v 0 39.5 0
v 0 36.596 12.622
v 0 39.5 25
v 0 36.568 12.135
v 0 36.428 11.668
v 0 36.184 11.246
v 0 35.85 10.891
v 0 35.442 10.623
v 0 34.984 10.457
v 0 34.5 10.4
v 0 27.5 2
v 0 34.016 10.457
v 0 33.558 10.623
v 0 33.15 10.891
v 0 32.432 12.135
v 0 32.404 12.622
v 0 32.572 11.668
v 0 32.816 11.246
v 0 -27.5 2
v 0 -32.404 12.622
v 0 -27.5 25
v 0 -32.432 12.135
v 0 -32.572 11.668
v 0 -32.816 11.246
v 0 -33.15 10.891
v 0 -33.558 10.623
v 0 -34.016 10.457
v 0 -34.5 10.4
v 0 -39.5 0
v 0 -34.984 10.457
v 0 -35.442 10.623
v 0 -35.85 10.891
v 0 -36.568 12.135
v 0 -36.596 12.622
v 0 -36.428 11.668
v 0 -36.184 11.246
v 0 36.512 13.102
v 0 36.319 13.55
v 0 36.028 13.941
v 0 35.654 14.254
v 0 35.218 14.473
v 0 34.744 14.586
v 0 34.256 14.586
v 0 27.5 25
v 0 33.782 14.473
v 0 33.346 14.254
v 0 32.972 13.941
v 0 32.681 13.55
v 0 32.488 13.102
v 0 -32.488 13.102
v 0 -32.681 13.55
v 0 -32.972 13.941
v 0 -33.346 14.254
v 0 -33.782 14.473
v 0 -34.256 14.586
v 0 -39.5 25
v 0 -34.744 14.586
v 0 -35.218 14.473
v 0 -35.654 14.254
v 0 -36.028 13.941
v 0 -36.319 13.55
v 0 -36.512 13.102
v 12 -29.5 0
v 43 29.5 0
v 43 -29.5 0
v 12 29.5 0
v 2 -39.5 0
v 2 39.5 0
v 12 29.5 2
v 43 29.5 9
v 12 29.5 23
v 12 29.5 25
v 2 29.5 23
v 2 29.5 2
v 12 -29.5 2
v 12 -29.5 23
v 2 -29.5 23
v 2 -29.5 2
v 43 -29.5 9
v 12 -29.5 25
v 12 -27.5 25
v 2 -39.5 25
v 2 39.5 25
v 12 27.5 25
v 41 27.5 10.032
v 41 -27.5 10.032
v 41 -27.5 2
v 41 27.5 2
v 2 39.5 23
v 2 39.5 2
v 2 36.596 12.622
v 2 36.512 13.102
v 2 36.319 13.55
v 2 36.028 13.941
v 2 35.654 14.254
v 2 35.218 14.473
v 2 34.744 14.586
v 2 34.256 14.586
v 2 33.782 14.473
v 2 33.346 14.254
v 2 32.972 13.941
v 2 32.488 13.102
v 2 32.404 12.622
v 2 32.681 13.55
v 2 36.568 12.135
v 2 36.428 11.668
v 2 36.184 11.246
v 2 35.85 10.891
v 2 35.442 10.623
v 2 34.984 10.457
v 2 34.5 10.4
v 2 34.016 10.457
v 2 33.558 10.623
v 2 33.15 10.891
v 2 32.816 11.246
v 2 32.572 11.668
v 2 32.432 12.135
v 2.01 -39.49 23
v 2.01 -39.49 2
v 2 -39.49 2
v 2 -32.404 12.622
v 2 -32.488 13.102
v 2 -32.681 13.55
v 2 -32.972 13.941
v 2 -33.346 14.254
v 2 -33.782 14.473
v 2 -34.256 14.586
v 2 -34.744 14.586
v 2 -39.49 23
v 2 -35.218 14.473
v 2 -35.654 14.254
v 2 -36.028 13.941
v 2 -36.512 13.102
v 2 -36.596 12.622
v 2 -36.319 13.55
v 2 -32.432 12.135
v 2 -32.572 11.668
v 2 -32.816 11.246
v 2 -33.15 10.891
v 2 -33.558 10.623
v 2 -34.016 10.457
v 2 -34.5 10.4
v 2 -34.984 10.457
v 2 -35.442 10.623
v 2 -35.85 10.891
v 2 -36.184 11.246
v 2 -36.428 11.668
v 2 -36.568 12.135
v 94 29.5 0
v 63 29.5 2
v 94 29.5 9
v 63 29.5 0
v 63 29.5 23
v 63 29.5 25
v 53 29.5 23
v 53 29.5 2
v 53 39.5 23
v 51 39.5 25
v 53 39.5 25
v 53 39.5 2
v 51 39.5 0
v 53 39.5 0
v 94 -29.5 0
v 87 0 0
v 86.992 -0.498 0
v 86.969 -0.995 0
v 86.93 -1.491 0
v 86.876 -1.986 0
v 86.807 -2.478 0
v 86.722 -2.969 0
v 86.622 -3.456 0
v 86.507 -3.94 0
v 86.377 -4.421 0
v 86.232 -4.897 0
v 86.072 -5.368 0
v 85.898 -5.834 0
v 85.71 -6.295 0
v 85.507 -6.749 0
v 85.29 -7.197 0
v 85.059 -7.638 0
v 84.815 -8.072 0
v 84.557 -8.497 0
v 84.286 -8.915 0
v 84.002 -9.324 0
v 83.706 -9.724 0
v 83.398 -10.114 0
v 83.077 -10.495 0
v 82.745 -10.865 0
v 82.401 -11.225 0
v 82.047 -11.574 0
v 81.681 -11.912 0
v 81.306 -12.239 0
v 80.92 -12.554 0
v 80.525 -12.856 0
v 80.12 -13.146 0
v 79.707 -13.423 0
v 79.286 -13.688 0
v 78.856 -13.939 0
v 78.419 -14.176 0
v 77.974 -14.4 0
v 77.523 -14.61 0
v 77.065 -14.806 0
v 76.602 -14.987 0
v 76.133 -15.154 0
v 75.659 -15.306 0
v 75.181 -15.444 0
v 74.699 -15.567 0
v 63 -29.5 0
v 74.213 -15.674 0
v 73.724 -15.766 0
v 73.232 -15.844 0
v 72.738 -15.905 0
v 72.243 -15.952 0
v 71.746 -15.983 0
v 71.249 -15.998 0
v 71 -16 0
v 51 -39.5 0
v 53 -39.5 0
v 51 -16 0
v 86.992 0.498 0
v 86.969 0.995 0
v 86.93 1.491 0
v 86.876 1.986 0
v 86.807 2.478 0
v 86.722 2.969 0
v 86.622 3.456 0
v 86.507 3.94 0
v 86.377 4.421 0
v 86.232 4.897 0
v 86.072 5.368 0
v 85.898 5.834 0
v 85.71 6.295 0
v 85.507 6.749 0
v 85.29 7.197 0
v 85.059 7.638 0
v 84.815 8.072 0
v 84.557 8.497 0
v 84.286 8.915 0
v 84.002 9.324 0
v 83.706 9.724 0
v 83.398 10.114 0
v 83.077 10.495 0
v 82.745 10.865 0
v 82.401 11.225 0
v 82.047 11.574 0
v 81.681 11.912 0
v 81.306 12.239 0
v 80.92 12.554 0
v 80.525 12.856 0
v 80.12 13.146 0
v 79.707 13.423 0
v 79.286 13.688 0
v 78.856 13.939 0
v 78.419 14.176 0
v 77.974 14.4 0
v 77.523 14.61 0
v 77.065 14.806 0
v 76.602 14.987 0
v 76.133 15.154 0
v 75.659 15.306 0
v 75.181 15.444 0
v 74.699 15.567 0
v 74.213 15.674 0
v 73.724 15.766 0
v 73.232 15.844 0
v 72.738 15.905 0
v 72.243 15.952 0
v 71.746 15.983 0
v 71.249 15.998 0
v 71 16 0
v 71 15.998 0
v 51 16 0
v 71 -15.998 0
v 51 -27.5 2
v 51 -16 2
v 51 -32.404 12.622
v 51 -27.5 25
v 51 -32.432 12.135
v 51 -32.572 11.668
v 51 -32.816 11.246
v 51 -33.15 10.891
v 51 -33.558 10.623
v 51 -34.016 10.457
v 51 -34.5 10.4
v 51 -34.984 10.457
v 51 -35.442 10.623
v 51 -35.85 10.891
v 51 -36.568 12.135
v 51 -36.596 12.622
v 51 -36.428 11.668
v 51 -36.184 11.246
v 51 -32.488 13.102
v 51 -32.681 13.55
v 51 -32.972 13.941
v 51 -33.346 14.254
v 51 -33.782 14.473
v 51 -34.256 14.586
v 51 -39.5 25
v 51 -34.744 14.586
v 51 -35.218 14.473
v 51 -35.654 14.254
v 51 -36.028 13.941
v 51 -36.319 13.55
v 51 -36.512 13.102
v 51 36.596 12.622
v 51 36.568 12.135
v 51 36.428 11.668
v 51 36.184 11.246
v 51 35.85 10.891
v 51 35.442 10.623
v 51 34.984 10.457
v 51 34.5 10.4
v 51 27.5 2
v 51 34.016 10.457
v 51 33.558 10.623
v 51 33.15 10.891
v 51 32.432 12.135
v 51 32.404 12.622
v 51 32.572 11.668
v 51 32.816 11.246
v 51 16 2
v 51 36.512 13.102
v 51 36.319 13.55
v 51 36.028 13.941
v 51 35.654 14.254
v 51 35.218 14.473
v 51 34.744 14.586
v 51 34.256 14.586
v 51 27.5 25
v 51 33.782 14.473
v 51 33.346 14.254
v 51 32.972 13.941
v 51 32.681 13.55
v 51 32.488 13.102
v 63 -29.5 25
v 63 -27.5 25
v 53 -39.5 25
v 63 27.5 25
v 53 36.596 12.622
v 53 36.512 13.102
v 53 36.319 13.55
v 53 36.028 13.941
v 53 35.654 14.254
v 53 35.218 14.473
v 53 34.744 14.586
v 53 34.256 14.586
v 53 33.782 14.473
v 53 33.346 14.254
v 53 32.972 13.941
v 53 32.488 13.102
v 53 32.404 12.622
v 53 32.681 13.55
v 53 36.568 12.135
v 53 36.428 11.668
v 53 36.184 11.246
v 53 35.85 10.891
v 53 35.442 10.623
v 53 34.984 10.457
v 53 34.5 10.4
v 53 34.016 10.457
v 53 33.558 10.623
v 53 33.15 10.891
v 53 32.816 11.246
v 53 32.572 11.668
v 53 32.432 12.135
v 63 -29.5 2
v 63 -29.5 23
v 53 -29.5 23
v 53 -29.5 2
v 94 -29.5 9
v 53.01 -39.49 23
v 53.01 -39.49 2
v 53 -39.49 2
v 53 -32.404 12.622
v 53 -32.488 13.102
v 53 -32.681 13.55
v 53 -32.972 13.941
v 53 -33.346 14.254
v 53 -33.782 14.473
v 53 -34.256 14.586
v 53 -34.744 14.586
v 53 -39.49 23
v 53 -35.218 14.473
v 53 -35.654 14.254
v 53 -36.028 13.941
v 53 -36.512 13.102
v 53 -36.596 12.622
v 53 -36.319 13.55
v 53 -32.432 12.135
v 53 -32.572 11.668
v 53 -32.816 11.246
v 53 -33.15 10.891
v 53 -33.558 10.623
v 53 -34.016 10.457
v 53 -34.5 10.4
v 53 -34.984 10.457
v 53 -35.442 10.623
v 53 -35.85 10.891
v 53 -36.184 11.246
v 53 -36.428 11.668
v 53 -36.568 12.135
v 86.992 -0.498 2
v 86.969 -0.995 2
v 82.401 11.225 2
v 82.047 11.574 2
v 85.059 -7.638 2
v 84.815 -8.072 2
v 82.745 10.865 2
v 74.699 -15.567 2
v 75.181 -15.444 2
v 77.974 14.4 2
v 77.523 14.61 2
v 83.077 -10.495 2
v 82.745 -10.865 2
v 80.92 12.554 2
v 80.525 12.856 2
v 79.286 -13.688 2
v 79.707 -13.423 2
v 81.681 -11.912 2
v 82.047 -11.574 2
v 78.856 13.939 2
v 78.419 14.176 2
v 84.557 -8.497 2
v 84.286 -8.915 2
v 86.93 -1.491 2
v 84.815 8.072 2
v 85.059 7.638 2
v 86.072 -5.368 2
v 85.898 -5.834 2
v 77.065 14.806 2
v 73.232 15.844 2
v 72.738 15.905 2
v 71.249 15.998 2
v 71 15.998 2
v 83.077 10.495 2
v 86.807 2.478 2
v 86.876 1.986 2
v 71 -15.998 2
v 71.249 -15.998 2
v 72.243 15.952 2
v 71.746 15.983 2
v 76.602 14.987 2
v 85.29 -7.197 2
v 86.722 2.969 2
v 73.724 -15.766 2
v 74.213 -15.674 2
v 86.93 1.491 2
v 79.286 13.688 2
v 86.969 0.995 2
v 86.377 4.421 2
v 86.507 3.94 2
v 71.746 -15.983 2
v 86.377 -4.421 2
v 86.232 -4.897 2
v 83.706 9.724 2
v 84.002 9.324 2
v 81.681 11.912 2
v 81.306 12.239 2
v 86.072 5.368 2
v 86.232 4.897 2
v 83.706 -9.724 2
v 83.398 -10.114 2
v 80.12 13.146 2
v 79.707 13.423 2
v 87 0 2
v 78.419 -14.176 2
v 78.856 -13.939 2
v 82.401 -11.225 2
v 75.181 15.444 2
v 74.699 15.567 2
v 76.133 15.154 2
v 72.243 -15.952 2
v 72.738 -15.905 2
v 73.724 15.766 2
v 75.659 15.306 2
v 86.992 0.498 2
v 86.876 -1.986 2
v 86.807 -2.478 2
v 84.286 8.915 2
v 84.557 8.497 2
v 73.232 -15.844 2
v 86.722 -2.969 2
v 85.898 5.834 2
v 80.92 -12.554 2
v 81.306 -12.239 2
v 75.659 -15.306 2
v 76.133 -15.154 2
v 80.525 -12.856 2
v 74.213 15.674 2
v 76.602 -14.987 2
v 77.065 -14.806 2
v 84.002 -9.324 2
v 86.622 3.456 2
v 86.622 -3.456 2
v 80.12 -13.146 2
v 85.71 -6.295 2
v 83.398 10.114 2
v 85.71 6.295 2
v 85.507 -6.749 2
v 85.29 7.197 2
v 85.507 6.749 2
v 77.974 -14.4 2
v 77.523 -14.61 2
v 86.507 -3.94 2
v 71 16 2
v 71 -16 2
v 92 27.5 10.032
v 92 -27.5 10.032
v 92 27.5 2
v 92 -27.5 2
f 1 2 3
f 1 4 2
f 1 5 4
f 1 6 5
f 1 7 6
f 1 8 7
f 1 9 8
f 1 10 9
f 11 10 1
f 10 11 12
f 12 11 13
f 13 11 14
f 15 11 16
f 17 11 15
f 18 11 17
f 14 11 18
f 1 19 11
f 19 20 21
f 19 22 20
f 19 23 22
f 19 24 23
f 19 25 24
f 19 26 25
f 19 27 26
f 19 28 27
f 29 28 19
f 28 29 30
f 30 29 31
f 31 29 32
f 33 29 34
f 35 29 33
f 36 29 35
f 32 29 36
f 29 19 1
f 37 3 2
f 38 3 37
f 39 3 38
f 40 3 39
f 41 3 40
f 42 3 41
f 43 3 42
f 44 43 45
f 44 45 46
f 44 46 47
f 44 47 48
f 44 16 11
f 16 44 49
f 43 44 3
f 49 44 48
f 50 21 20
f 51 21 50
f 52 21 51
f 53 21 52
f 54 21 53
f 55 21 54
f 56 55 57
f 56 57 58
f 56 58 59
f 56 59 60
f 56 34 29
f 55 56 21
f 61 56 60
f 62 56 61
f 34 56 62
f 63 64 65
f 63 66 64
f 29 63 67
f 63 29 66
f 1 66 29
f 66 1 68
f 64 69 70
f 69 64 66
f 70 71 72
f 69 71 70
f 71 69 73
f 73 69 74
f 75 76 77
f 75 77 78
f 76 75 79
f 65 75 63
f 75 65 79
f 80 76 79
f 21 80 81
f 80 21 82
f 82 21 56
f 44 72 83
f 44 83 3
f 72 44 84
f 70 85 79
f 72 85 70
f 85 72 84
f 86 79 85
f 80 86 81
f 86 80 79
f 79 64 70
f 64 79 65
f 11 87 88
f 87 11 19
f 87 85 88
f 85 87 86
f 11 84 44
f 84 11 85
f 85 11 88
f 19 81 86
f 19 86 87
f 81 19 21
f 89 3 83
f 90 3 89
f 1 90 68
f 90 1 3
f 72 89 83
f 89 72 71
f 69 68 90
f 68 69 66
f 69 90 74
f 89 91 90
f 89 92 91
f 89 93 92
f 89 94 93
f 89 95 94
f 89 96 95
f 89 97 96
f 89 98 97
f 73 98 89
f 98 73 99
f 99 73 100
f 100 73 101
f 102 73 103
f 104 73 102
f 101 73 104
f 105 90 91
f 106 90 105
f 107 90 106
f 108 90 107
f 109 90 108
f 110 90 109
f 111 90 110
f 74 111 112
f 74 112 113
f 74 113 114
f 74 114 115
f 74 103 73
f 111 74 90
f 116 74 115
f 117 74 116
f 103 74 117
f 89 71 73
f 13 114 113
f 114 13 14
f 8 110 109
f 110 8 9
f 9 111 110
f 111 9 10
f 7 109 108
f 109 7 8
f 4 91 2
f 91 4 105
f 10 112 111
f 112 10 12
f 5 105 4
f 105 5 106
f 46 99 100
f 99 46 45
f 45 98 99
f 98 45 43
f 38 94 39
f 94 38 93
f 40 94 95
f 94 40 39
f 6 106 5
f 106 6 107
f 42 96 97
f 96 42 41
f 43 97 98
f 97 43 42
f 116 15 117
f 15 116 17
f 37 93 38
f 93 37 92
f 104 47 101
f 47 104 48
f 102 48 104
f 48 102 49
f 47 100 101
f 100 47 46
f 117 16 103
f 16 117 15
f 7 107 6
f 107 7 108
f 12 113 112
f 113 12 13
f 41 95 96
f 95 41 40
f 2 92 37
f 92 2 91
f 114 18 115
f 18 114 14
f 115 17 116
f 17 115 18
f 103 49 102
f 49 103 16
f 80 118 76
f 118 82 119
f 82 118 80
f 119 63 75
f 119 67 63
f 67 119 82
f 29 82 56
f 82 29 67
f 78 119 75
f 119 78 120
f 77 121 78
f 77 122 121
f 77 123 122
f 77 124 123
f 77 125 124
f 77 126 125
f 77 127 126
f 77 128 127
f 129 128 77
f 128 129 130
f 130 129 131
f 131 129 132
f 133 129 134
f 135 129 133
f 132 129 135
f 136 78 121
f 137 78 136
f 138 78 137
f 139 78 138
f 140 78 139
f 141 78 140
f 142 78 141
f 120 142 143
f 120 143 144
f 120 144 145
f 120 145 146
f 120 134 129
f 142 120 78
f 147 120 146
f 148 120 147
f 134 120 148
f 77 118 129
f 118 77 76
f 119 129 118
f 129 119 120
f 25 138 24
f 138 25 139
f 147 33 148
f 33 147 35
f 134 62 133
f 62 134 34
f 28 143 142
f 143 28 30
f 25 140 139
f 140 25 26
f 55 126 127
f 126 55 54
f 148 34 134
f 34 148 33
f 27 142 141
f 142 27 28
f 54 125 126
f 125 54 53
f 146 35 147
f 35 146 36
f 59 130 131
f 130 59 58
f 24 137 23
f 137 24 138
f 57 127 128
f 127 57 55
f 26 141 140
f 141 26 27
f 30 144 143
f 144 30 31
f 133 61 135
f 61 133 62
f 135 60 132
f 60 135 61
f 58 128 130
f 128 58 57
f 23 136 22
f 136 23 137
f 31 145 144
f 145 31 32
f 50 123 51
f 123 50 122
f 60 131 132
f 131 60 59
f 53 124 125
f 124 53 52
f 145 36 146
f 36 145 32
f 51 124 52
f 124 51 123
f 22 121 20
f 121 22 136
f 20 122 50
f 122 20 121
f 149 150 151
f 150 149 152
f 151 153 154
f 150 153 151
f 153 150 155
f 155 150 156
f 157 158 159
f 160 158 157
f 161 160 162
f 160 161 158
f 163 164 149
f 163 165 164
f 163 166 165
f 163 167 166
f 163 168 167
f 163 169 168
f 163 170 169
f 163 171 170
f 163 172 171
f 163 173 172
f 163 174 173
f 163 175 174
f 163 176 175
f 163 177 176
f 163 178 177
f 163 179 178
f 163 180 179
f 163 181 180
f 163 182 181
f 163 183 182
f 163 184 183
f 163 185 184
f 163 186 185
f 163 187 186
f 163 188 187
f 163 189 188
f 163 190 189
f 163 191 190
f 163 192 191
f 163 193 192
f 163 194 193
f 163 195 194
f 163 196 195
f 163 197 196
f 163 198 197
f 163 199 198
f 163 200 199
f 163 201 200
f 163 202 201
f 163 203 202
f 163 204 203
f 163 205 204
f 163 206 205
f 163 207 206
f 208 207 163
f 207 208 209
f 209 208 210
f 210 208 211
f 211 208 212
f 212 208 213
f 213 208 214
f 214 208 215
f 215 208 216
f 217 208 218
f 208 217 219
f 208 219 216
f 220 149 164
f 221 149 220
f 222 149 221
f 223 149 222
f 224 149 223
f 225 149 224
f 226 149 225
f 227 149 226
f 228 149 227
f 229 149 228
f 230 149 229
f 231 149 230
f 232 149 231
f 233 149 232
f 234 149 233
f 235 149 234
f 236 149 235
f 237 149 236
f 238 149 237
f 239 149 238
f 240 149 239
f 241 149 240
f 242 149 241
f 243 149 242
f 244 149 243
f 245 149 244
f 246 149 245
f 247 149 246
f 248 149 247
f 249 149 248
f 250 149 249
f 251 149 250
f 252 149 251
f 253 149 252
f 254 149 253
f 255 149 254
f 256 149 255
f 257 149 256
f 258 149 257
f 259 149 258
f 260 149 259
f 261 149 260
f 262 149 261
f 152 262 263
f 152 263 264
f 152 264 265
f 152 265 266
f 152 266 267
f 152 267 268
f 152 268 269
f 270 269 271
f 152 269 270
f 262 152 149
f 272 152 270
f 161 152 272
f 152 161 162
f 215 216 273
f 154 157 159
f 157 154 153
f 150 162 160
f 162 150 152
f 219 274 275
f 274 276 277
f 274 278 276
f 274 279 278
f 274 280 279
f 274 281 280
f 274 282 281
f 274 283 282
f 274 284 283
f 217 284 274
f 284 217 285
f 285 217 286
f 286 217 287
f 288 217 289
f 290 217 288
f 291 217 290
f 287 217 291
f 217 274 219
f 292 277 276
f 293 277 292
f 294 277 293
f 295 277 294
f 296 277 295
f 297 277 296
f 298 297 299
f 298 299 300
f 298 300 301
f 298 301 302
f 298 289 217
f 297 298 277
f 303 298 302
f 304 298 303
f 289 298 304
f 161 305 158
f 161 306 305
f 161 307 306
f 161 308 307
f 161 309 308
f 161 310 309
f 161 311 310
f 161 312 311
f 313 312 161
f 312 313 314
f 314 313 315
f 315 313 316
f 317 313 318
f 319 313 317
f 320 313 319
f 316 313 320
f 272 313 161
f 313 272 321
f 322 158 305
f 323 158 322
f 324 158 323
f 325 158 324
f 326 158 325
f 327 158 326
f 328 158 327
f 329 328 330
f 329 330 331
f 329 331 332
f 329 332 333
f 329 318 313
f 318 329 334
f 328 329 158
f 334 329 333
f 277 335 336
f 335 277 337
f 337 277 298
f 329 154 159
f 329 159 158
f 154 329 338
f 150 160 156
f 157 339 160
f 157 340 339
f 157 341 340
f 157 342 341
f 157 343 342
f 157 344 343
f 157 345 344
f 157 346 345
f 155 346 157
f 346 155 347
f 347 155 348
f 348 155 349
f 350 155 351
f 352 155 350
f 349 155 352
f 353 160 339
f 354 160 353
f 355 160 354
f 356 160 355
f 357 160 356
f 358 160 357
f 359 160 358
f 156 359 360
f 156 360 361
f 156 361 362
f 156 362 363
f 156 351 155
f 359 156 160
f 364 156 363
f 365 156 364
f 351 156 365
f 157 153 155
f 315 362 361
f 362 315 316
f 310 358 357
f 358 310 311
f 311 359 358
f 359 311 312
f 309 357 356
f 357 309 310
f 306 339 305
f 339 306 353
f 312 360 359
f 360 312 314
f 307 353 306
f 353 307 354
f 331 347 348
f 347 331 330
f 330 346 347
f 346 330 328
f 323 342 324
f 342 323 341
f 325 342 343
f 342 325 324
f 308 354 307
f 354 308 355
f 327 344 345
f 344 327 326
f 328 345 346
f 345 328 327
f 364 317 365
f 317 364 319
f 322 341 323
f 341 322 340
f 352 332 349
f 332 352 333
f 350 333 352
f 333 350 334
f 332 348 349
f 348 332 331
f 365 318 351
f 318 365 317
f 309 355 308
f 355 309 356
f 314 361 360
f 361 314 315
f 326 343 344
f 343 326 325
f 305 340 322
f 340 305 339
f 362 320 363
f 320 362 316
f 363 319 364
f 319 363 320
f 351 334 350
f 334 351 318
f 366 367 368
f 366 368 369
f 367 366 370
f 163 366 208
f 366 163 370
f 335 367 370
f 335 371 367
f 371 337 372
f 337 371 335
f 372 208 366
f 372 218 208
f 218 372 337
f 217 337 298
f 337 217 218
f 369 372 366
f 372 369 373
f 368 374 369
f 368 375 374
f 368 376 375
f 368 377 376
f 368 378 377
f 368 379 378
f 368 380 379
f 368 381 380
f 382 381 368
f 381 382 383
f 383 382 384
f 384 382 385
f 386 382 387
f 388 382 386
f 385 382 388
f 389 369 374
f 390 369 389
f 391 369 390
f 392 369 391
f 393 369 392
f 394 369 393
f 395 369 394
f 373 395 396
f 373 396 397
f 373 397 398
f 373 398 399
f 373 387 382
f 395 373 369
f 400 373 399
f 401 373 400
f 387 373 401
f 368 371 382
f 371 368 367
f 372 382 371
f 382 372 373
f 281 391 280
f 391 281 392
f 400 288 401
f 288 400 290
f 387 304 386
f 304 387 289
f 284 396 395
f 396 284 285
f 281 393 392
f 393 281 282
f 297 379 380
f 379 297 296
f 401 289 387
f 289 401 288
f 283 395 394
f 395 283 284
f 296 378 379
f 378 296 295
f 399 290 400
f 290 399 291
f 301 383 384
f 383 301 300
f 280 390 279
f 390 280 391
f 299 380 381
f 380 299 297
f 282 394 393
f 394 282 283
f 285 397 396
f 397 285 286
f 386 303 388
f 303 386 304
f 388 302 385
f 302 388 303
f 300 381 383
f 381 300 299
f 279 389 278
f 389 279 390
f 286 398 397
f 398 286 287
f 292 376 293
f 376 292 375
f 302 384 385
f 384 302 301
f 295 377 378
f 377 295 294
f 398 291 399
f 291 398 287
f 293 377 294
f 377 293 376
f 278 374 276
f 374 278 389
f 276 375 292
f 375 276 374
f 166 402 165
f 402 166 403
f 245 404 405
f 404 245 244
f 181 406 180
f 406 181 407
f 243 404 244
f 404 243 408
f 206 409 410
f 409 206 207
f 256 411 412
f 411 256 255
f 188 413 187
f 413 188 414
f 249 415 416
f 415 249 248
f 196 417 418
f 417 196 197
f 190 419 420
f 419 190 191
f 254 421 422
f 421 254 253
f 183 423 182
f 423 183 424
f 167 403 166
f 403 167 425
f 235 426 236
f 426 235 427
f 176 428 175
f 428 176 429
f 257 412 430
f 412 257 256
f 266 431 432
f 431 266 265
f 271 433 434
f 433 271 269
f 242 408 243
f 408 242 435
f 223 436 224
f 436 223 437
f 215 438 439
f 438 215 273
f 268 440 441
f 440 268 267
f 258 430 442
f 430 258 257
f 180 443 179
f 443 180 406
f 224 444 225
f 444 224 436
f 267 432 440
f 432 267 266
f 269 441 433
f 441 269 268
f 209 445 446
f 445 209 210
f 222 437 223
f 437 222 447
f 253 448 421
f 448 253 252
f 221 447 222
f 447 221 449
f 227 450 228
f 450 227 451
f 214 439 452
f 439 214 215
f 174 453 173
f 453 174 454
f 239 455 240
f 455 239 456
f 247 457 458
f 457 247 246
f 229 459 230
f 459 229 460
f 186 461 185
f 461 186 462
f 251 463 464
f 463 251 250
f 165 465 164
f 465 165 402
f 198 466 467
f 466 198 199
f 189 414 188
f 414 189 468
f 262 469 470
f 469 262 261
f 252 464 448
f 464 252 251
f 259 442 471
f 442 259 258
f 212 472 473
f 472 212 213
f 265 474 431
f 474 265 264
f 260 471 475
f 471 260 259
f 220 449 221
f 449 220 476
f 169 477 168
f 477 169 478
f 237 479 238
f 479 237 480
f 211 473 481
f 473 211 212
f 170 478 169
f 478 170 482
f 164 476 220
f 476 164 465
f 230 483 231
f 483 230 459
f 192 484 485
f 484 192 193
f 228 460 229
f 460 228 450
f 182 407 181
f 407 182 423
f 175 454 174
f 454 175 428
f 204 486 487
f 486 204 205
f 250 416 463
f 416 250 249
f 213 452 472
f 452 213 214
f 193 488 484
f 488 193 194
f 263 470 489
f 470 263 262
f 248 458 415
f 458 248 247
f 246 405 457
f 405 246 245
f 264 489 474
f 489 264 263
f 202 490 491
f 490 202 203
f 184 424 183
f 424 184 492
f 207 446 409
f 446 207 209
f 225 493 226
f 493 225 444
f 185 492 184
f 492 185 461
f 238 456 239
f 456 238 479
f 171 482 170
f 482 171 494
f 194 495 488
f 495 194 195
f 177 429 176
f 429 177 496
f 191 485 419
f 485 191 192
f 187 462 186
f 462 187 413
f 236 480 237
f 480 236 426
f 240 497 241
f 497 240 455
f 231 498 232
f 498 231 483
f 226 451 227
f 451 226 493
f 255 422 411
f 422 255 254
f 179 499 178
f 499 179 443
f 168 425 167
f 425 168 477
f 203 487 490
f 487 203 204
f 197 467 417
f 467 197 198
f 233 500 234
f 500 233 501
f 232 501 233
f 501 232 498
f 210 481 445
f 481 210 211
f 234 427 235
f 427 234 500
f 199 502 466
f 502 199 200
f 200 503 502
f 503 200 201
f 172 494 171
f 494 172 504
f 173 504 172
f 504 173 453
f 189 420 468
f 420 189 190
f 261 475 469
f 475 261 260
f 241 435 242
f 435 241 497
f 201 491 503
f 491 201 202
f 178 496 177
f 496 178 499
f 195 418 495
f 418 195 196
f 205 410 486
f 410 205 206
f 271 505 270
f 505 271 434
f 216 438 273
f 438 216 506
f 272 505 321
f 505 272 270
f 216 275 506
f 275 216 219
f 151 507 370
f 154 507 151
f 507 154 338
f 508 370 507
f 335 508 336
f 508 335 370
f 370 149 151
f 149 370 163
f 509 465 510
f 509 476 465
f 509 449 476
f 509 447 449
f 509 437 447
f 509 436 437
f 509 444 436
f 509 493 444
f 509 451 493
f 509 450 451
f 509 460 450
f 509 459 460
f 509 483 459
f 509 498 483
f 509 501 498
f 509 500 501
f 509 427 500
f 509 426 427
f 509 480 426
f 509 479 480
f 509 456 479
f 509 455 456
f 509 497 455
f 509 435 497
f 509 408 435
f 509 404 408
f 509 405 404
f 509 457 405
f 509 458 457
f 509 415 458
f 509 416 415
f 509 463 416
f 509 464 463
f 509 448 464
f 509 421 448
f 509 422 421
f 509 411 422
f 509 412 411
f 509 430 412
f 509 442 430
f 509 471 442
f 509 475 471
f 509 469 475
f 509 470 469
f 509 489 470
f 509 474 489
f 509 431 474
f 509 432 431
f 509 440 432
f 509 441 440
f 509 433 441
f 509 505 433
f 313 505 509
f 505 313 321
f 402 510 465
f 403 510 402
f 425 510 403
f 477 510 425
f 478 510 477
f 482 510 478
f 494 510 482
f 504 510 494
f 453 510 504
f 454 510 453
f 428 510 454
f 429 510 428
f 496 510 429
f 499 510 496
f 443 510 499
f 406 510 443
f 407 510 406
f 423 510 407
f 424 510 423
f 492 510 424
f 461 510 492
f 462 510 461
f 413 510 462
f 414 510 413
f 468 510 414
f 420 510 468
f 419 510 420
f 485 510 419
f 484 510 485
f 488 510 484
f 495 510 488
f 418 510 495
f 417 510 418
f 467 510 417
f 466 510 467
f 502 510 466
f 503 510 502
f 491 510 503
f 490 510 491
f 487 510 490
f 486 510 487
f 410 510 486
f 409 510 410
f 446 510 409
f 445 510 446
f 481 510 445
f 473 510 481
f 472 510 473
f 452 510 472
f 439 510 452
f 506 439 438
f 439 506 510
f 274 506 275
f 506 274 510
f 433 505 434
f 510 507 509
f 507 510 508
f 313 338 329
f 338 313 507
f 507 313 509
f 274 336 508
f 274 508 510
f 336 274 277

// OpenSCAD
// This work is licensed under the Creative Commons 
// Attribution-ShareAlike 4.0 International License. 
// To view a copy of this license, visit
// http://creativecommons.org/licenses/by-sa/4.0/.

//
// HOW TO RENDER THE EXAMPLE
//
// If you set the part variable below to 'example' and have the 
// relevant libraries installed, an example power strip with 
// holders and dimension lines is rendered.
// This is not supported on the Thingiverse customizer.
//

//
// Thingiverse customizer variables:
//
// See the documentation (for the powerstripholder module below) 
// or render the example for more information.
//

// which side
part="both"; // [blind:The side without cable,cable:The side with cable,both:Both sides]

// width of the power strip
width=55;

// height of the power strip
height=41;

// overhang
overhang=9;

// wall thickness
wall=2;

// length of the feet
length=25;

// width of the feet
base=10;

// diameter of the hole for the cable
cable=32;

// offset of the cable hole from the bottom
cable_center=20;

// size of the screw holes
screw=4.2;

//
// end of customizer variables
//

// these libraries are only used to render the example 
//   (when part == 'example')
use <BOSL/shapes.scad>
include <../rol/dimension.scad>

/* [Hidden] */
$fn=0;
$fa=0.01;
$fs=0.5;

//
// select which part to render
//

if (part == "blind") {
  powerstripholder(
    width=width,
    height=height,
    overhang=overhang,
    wall=wall,
    length=length,
    base=base,
    cable=undef,
    screw=screw
  );
}
else if (part == "cable") {
  powerstripholder(
    width=width,
    height=height,
    overhang=overhang,
    wall=wall,
    length=length,
    base=base,
    cable=cable,
    cable_center=cable_center,
    screw=screw
  );
}  
else if (part == "both") {
  translate([0,0,length]) {
    rotate([0,90,0]) {
      powerstripholder(
        width=width,
        height=height,
        overhang=overhang,
        wall=wall,
        length=length,
        base=base,
        cable=undef,
        screw=screw
      );
    }
  }
  
  translate([height+10,0,length]) {
    rotate([0,90,0]) {
      powerstripholder(
        width=width,
        height=height,
        overhang=overhang,
        wall=wall,
        length=length,
        base=base,
        cable=cable,
        cable_center=cable_center,
        screw=screw
      );
    }
  }
}
else if (part == "example") {  
  // two holders to hold a typical power strip
  translate([-54,0,0]) {
    rotate([0,0,180]) {
      powerstripholder();
    }
  }
  translate([54,0,0]) {
    powerstripholder(cable=32);
  }

  // power strip
  powerstripholder_powerstrip();

  // dimensions
  powerstripholder_dimensions();
}

/**
# Power strip holder.

Most readily available power strips do not have any way of mounting them.
These are holders to mount a power strip onto something.

![example](img/powerstripholder_example.png)

# See also:

* [Thingiverse](https://www.thingiverse.com/thing:4590509)
* Code: [powerstripholder.scad](../parts/powerstripholder.scad)

# Requires

- BOSL: https://github.com/revarbat/BOSL (only used to render the power 
  strip in the example)
- dimensions.scad: to draw the dimensions (not needed for the actual holders)

# Arguments

- `width`: The width of the power strip (make sure its a bit oversize)
- `height`: The height of the power strip (make sure its a bit oversize)
- `overhang`: The size of the lip on top which keeps the power strip in place.
- `wall`: Wall thickness. 2mm seems to be fine.
- `length`: The length of the feet.
- `base`: The width of the feet.
- `cable`: The diameter of the cable hole or undef for no hole.
- `cable_center`: The center of the cable.
- `screw`: The size of the screw holes.

![dimensions](img/powerstripholder_dimensions.png)

**/
module powerstripholder(
  width=55,
  height=41,
  overhang=9,
  wall=2,
  length=25,
  base=10,
  cable=undef,
  cable_center=20,
  screw=4.2
) {  
  zfix=0.01;
  w=width + 2*wall;
  h=height + wall;
  l=overhang + wall;

  difference() {
    translate([0,w/2,0]) rotate([90,0,0]) linear_extrude(w) {
      polygon([ 
        [0,0],
        [length,0],
        [length,h],
        [length-overhang,h],
        [0,wall+base]
      ]);
    }
    
    translate([-zfix,-width/2,-zfix]) {
      cube([length-wall+zfix,width,height+zfix]);
    }

    if (cable != undef) {
      translate([length-zfix-wall,0,cable_center]) rotate([0,90,0]) {
        cylinder(r=cable/2,h=wall+2*zfix);
      }
      translate([length-zfix-wall,-cable/2,-zfix]) {
        cube([wall+2*zfix,cable, cable_center+zfix]);
      }    
    }    
  }

  module feet(mirror=false) {
    difference() {
      translate([mirror?length:0,0,0]) {
        rotate([90,0,mirror?270:90]) {
          linear_extrude(length) {
            polygon([
              [0,0], 
              [base,0],  
              [base, wall],
              [0, base+wall]
            ]);
          }
        }
      }
      
      translate([wall,mirror?-base+zfix:-zfix,wall]) {
        cube([length-wall*2,base+zfix,base]);  
      }

      // screw hole    
      translate([(length)/2,mirror? -base/2 : base/2,-zfix]) {
        cylinder(d=screw,h=wall+2*zfix);
      }
    }
  }

  translate([0,w/2,0]) feet();
  translate([0,-w/2,0]) feet(true);
}


//
// modules below are for testing/visualization only!
//

/*
Render the dimensions used by holder()
*/
module powerstripholder_dimensions() {
  dim(p1=[-79+9,-55/2,41], p2=[-79+9,55/2,41], txt="width",offset=10,size=3,d=DIM_UP);
  dim(p1=[-79+9,-55/2,0], p2=[-79+9,-55/2,41], txt="height",offset=25,size=3,d=DIM_RIGHT);
  dim(p1=[-79,58/2,43], p2=[-79+9,58/2,43], txt="overhang",size=3,d=DIM_BACK);
  dim(p1=[-79,-58/2-10,0], p2=[-79+25,-58/2-10,0], txt="length",size=3,offset=10);
  dim(p1=[-79,-58/2-10,0], p2=[-79,-58/2,0], txt="base",size=3);
  dim(p1=[80,32/2,20], p2=[80,-32/2,20], txt="cable", size=3, offset=30,d=DIM_UP);
  dim(p1=[90,0,0], p2=[90,0,20], txt="cable_center", size=3,offset=40);
}


/*
Render a powerstrip for visualisation purposes only.

Uses code from https://www.thingiverse.com/thing:2251788
*/
module powerstripholder_powerstrip() {    
  translate([0,0,20]) {
    color("WhiteSmoke")  {    
      difference() {
        rounded_prismoid(size1=[152,53],size2=[144,44],h=20,r=5);
        for(x=[-44,0,44]) {
          translate([x,0,20]) rotate([0,180,45]) {
            cylinder(r=39/2, h=18.5);
            translate([0,10,0])
                cylinder(r=7/2,h=30);
            translate([0,-10,0])
                cylinder(r=7/2,h=30);
          }
        }
      }
    }
    
    for(x=[-44,0,44]) {
      translate([x,0,0]) {
        rotate([0,0,45]) {
          color("WhiteSmoke") {
            translate([5.4/2,16.9,3]) cube([7,3,14]);        
            translate([-5.4/2-7,16.9,3]) cube([7,3,14]);
            translate([5.4/2,-20.4,3]) cube([7,3.5,14]);
            translate([-5.4/2-7,-20.4,3]) cube([7,3.5,14]);
          }
          color("Goldenrod") {
            translate([-21,-1.5,0]) cube([4,3,17]);           
            rotate([0,0,180]) {
              translate([-21,-1.5,0]) cube([4,3,17]);          
            }
          }
        }
      }
    }
  }
  
  color("WhiteSmoke") {
    rounded_prismoid(size1=[144,44],size2=[152,53],h=20,r=5);
    translate([70,0,20]) rotate([0,90,0]) cylinder(d=30,h=9);
    translate([81,0,20]) rotate([0,90,0]) cyl(d1=30,d2=15,h=4);
    translate([81,0,20]) rotate([0,90,0]) cylinder(d=6,h=40);
  }

  translate([-74,-24,20]) color("Black") cube([146,46,1]);  
}
